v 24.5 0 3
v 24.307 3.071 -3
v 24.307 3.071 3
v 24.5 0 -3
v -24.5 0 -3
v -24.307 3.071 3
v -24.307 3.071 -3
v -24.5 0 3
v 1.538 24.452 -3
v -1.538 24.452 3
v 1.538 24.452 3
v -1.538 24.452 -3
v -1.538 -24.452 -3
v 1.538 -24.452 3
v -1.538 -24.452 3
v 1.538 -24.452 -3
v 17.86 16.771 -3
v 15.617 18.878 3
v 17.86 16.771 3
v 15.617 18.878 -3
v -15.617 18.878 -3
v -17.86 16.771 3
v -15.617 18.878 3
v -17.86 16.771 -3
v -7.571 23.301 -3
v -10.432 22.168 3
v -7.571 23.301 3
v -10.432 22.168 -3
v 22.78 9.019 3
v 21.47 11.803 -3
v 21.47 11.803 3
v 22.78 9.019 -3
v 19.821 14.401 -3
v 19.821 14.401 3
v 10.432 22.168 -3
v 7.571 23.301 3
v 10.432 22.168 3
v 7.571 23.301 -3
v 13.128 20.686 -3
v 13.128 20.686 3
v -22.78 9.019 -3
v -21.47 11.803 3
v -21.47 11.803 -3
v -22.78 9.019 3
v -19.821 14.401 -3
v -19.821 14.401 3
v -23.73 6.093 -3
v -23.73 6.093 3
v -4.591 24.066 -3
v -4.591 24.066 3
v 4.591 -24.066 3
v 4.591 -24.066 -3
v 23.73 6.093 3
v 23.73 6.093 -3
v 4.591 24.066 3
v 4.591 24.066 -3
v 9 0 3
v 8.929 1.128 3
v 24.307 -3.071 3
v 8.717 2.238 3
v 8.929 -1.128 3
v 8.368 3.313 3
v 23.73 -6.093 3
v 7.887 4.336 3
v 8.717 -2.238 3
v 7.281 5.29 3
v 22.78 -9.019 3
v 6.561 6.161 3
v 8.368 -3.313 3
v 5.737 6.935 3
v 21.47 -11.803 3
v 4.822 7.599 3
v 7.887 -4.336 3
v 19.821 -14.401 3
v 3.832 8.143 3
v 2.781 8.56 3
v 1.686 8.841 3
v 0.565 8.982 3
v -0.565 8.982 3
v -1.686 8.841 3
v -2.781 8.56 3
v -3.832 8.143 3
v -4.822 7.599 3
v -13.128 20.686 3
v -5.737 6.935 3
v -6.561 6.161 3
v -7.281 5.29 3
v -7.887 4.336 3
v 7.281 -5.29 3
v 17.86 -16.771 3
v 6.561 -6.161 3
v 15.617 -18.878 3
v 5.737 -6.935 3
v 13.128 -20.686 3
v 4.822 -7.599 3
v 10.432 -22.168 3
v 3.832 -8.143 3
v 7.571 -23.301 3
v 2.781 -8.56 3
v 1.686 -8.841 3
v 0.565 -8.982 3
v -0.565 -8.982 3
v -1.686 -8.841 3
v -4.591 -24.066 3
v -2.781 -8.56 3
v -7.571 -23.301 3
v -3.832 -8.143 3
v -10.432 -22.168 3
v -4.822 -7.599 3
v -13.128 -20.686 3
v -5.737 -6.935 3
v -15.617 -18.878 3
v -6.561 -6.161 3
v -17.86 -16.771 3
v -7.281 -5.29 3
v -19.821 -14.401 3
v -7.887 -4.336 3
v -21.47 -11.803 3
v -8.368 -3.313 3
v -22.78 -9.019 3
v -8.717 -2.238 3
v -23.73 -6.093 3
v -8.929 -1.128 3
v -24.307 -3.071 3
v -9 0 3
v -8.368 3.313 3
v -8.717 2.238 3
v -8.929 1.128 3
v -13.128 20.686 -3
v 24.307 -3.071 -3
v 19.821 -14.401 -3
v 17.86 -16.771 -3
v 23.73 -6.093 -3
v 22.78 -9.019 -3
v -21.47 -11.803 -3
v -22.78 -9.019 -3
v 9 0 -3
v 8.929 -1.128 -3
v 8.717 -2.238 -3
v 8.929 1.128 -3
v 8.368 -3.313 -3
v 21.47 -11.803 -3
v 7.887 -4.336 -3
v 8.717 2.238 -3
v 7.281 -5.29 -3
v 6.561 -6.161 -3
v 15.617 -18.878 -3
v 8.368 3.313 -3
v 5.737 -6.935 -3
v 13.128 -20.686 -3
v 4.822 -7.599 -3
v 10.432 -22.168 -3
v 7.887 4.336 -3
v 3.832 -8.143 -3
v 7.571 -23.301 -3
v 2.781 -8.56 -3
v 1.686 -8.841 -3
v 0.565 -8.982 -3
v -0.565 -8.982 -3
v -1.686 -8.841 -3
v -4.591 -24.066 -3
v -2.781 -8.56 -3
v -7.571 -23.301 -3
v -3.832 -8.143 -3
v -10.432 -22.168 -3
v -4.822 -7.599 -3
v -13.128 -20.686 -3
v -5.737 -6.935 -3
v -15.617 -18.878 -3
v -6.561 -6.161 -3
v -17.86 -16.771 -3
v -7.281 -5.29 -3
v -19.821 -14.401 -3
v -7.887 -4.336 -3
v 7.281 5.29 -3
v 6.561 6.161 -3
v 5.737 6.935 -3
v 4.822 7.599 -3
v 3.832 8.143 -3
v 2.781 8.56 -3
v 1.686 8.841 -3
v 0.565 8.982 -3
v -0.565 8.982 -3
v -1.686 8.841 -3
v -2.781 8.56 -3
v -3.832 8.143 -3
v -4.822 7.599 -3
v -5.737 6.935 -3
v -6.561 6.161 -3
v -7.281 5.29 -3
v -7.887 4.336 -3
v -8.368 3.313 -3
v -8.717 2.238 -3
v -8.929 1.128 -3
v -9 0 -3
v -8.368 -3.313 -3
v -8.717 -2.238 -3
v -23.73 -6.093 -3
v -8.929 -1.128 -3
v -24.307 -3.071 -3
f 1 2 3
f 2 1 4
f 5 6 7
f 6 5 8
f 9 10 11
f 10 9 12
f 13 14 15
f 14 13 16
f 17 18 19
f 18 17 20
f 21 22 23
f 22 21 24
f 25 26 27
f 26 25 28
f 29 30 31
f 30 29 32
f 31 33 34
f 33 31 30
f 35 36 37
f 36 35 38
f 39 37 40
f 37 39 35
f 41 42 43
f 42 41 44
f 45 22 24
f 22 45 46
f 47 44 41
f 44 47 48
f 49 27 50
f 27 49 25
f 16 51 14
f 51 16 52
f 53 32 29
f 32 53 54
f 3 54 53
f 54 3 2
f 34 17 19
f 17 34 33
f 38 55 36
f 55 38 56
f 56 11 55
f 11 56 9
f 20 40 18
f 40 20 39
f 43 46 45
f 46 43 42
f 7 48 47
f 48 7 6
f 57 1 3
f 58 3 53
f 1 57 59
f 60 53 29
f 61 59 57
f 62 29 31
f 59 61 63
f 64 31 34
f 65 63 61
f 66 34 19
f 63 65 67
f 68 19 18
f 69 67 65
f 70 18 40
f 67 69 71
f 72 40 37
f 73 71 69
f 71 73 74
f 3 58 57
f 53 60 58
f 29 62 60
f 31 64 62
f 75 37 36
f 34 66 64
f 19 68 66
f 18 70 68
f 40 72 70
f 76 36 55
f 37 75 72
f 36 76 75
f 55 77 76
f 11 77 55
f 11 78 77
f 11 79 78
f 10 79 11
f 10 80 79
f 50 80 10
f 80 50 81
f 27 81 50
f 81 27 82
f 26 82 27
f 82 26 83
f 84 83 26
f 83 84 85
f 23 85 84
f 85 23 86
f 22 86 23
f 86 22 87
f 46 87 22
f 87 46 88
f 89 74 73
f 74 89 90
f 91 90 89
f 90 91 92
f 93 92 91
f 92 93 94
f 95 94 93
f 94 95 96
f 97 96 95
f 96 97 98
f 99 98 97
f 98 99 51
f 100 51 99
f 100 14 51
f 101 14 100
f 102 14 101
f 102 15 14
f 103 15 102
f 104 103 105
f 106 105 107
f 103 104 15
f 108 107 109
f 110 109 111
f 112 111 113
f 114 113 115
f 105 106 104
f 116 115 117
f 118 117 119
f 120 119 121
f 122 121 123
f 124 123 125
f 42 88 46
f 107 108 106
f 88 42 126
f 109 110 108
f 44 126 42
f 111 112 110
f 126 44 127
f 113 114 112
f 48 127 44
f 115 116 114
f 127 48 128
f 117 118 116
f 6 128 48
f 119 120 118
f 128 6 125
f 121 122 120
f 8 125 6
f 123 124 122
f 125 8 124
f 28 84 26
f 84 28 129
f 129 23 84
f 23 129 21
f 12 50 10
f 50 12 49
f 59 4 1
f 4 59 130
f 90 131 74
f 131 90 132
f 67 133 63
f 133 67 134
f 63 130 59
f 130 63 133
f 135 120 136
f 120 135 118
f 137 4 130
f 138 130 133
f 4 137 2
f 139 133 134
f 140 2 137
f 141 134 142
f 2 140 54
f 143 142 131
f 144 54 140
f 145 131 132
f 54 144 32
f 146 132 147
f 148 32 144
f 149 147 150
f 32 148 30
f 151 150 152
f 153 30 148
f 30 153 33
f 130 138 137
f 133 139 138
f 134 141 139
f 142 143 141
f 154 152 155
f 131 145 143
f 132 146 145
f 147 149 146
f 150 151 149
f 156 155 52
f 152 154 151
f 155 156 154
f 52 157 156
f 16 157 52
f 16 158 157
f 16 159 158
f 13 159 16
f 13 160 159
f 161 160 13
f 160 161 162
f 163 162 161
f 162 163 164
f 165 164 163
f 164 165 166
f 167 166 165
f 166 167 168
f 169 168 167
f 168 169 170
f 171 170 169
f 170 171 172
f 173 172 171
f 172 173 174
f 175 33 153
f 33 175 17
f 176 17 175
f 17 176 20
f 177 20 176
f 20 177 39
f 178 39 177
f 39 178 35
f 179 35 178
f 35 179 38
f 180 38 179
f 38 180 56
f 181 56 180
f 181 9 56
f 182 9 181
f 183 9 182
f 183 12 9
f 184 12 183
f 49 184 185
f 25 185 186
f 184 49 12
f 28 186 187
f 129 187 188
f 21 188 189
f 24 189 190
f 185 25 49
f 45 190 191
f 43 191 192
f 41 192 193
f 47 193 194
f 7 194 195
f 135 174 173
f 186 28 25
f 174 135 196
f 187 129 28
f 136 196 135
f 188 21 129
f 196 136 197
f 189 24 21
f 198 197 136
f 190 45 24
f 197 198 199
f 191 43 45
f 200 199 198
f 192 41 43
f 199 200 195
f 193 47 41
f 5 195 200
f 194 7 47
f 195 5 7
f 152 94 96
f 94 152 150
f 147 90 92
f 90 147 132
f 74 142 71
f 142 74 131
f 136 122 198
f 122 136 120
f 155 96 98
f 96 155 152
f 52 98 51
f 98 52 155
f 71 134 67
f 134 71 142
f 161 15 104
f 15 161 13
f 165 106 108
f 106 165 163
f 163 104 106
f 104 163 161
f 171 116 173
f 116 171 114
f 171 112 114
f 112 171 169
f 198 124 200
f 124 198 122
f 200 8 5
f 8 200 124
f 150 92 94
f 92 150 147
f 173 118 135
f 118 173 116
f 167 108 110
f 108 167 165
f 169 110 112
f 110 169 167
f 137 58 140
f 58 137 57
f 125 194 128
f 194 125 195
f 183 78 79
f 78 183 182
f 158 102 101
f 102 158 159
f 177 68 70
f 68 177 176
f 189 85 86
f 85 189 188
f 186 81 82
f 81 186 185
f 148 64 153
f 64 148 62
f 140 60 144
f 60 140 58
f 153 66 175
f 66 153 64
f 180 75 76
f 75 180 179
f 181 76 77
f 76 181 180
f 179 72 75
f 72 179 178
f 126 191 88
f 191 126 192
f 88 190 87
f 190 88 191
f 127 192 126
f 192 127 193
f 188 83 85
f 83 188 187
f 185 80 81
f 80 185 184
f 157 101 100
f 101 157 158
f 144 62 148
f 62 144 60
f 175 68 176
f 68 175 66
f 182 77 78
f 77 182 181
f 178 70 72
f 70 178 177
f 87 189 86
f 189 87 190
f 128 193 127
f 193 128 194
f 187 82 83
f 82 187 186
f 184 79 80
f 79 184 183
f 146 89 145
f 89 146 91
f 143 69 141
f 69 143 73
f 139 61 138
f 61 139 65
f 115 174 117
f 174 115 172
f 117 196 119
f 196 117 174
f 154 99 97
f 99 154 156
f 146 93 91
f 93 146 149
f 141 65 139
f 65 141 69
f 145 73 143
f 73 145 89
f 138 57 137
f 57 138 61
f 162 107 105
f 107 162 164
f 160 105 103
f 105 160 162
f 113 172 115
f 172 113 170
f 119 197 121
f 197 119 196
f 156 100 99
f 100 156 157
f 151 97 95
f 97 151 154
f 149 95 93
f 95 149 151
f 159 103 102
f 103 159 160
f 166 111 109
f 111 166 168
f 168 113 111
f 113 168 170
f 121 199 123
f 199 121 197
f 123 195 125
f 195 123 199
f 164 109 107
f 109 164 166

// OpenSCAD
$fn = 50;


difference() {
	union() {
		translate(v = [0, 0, -3.0000000000]) {
			cylinder(h = 6, r = 24.5000000000);
		}
	}
	union() {
		translate(v = [0, 0, -100.0000000000]) {
			cylinder(h = 200, r = 9);
		}
	}
}
